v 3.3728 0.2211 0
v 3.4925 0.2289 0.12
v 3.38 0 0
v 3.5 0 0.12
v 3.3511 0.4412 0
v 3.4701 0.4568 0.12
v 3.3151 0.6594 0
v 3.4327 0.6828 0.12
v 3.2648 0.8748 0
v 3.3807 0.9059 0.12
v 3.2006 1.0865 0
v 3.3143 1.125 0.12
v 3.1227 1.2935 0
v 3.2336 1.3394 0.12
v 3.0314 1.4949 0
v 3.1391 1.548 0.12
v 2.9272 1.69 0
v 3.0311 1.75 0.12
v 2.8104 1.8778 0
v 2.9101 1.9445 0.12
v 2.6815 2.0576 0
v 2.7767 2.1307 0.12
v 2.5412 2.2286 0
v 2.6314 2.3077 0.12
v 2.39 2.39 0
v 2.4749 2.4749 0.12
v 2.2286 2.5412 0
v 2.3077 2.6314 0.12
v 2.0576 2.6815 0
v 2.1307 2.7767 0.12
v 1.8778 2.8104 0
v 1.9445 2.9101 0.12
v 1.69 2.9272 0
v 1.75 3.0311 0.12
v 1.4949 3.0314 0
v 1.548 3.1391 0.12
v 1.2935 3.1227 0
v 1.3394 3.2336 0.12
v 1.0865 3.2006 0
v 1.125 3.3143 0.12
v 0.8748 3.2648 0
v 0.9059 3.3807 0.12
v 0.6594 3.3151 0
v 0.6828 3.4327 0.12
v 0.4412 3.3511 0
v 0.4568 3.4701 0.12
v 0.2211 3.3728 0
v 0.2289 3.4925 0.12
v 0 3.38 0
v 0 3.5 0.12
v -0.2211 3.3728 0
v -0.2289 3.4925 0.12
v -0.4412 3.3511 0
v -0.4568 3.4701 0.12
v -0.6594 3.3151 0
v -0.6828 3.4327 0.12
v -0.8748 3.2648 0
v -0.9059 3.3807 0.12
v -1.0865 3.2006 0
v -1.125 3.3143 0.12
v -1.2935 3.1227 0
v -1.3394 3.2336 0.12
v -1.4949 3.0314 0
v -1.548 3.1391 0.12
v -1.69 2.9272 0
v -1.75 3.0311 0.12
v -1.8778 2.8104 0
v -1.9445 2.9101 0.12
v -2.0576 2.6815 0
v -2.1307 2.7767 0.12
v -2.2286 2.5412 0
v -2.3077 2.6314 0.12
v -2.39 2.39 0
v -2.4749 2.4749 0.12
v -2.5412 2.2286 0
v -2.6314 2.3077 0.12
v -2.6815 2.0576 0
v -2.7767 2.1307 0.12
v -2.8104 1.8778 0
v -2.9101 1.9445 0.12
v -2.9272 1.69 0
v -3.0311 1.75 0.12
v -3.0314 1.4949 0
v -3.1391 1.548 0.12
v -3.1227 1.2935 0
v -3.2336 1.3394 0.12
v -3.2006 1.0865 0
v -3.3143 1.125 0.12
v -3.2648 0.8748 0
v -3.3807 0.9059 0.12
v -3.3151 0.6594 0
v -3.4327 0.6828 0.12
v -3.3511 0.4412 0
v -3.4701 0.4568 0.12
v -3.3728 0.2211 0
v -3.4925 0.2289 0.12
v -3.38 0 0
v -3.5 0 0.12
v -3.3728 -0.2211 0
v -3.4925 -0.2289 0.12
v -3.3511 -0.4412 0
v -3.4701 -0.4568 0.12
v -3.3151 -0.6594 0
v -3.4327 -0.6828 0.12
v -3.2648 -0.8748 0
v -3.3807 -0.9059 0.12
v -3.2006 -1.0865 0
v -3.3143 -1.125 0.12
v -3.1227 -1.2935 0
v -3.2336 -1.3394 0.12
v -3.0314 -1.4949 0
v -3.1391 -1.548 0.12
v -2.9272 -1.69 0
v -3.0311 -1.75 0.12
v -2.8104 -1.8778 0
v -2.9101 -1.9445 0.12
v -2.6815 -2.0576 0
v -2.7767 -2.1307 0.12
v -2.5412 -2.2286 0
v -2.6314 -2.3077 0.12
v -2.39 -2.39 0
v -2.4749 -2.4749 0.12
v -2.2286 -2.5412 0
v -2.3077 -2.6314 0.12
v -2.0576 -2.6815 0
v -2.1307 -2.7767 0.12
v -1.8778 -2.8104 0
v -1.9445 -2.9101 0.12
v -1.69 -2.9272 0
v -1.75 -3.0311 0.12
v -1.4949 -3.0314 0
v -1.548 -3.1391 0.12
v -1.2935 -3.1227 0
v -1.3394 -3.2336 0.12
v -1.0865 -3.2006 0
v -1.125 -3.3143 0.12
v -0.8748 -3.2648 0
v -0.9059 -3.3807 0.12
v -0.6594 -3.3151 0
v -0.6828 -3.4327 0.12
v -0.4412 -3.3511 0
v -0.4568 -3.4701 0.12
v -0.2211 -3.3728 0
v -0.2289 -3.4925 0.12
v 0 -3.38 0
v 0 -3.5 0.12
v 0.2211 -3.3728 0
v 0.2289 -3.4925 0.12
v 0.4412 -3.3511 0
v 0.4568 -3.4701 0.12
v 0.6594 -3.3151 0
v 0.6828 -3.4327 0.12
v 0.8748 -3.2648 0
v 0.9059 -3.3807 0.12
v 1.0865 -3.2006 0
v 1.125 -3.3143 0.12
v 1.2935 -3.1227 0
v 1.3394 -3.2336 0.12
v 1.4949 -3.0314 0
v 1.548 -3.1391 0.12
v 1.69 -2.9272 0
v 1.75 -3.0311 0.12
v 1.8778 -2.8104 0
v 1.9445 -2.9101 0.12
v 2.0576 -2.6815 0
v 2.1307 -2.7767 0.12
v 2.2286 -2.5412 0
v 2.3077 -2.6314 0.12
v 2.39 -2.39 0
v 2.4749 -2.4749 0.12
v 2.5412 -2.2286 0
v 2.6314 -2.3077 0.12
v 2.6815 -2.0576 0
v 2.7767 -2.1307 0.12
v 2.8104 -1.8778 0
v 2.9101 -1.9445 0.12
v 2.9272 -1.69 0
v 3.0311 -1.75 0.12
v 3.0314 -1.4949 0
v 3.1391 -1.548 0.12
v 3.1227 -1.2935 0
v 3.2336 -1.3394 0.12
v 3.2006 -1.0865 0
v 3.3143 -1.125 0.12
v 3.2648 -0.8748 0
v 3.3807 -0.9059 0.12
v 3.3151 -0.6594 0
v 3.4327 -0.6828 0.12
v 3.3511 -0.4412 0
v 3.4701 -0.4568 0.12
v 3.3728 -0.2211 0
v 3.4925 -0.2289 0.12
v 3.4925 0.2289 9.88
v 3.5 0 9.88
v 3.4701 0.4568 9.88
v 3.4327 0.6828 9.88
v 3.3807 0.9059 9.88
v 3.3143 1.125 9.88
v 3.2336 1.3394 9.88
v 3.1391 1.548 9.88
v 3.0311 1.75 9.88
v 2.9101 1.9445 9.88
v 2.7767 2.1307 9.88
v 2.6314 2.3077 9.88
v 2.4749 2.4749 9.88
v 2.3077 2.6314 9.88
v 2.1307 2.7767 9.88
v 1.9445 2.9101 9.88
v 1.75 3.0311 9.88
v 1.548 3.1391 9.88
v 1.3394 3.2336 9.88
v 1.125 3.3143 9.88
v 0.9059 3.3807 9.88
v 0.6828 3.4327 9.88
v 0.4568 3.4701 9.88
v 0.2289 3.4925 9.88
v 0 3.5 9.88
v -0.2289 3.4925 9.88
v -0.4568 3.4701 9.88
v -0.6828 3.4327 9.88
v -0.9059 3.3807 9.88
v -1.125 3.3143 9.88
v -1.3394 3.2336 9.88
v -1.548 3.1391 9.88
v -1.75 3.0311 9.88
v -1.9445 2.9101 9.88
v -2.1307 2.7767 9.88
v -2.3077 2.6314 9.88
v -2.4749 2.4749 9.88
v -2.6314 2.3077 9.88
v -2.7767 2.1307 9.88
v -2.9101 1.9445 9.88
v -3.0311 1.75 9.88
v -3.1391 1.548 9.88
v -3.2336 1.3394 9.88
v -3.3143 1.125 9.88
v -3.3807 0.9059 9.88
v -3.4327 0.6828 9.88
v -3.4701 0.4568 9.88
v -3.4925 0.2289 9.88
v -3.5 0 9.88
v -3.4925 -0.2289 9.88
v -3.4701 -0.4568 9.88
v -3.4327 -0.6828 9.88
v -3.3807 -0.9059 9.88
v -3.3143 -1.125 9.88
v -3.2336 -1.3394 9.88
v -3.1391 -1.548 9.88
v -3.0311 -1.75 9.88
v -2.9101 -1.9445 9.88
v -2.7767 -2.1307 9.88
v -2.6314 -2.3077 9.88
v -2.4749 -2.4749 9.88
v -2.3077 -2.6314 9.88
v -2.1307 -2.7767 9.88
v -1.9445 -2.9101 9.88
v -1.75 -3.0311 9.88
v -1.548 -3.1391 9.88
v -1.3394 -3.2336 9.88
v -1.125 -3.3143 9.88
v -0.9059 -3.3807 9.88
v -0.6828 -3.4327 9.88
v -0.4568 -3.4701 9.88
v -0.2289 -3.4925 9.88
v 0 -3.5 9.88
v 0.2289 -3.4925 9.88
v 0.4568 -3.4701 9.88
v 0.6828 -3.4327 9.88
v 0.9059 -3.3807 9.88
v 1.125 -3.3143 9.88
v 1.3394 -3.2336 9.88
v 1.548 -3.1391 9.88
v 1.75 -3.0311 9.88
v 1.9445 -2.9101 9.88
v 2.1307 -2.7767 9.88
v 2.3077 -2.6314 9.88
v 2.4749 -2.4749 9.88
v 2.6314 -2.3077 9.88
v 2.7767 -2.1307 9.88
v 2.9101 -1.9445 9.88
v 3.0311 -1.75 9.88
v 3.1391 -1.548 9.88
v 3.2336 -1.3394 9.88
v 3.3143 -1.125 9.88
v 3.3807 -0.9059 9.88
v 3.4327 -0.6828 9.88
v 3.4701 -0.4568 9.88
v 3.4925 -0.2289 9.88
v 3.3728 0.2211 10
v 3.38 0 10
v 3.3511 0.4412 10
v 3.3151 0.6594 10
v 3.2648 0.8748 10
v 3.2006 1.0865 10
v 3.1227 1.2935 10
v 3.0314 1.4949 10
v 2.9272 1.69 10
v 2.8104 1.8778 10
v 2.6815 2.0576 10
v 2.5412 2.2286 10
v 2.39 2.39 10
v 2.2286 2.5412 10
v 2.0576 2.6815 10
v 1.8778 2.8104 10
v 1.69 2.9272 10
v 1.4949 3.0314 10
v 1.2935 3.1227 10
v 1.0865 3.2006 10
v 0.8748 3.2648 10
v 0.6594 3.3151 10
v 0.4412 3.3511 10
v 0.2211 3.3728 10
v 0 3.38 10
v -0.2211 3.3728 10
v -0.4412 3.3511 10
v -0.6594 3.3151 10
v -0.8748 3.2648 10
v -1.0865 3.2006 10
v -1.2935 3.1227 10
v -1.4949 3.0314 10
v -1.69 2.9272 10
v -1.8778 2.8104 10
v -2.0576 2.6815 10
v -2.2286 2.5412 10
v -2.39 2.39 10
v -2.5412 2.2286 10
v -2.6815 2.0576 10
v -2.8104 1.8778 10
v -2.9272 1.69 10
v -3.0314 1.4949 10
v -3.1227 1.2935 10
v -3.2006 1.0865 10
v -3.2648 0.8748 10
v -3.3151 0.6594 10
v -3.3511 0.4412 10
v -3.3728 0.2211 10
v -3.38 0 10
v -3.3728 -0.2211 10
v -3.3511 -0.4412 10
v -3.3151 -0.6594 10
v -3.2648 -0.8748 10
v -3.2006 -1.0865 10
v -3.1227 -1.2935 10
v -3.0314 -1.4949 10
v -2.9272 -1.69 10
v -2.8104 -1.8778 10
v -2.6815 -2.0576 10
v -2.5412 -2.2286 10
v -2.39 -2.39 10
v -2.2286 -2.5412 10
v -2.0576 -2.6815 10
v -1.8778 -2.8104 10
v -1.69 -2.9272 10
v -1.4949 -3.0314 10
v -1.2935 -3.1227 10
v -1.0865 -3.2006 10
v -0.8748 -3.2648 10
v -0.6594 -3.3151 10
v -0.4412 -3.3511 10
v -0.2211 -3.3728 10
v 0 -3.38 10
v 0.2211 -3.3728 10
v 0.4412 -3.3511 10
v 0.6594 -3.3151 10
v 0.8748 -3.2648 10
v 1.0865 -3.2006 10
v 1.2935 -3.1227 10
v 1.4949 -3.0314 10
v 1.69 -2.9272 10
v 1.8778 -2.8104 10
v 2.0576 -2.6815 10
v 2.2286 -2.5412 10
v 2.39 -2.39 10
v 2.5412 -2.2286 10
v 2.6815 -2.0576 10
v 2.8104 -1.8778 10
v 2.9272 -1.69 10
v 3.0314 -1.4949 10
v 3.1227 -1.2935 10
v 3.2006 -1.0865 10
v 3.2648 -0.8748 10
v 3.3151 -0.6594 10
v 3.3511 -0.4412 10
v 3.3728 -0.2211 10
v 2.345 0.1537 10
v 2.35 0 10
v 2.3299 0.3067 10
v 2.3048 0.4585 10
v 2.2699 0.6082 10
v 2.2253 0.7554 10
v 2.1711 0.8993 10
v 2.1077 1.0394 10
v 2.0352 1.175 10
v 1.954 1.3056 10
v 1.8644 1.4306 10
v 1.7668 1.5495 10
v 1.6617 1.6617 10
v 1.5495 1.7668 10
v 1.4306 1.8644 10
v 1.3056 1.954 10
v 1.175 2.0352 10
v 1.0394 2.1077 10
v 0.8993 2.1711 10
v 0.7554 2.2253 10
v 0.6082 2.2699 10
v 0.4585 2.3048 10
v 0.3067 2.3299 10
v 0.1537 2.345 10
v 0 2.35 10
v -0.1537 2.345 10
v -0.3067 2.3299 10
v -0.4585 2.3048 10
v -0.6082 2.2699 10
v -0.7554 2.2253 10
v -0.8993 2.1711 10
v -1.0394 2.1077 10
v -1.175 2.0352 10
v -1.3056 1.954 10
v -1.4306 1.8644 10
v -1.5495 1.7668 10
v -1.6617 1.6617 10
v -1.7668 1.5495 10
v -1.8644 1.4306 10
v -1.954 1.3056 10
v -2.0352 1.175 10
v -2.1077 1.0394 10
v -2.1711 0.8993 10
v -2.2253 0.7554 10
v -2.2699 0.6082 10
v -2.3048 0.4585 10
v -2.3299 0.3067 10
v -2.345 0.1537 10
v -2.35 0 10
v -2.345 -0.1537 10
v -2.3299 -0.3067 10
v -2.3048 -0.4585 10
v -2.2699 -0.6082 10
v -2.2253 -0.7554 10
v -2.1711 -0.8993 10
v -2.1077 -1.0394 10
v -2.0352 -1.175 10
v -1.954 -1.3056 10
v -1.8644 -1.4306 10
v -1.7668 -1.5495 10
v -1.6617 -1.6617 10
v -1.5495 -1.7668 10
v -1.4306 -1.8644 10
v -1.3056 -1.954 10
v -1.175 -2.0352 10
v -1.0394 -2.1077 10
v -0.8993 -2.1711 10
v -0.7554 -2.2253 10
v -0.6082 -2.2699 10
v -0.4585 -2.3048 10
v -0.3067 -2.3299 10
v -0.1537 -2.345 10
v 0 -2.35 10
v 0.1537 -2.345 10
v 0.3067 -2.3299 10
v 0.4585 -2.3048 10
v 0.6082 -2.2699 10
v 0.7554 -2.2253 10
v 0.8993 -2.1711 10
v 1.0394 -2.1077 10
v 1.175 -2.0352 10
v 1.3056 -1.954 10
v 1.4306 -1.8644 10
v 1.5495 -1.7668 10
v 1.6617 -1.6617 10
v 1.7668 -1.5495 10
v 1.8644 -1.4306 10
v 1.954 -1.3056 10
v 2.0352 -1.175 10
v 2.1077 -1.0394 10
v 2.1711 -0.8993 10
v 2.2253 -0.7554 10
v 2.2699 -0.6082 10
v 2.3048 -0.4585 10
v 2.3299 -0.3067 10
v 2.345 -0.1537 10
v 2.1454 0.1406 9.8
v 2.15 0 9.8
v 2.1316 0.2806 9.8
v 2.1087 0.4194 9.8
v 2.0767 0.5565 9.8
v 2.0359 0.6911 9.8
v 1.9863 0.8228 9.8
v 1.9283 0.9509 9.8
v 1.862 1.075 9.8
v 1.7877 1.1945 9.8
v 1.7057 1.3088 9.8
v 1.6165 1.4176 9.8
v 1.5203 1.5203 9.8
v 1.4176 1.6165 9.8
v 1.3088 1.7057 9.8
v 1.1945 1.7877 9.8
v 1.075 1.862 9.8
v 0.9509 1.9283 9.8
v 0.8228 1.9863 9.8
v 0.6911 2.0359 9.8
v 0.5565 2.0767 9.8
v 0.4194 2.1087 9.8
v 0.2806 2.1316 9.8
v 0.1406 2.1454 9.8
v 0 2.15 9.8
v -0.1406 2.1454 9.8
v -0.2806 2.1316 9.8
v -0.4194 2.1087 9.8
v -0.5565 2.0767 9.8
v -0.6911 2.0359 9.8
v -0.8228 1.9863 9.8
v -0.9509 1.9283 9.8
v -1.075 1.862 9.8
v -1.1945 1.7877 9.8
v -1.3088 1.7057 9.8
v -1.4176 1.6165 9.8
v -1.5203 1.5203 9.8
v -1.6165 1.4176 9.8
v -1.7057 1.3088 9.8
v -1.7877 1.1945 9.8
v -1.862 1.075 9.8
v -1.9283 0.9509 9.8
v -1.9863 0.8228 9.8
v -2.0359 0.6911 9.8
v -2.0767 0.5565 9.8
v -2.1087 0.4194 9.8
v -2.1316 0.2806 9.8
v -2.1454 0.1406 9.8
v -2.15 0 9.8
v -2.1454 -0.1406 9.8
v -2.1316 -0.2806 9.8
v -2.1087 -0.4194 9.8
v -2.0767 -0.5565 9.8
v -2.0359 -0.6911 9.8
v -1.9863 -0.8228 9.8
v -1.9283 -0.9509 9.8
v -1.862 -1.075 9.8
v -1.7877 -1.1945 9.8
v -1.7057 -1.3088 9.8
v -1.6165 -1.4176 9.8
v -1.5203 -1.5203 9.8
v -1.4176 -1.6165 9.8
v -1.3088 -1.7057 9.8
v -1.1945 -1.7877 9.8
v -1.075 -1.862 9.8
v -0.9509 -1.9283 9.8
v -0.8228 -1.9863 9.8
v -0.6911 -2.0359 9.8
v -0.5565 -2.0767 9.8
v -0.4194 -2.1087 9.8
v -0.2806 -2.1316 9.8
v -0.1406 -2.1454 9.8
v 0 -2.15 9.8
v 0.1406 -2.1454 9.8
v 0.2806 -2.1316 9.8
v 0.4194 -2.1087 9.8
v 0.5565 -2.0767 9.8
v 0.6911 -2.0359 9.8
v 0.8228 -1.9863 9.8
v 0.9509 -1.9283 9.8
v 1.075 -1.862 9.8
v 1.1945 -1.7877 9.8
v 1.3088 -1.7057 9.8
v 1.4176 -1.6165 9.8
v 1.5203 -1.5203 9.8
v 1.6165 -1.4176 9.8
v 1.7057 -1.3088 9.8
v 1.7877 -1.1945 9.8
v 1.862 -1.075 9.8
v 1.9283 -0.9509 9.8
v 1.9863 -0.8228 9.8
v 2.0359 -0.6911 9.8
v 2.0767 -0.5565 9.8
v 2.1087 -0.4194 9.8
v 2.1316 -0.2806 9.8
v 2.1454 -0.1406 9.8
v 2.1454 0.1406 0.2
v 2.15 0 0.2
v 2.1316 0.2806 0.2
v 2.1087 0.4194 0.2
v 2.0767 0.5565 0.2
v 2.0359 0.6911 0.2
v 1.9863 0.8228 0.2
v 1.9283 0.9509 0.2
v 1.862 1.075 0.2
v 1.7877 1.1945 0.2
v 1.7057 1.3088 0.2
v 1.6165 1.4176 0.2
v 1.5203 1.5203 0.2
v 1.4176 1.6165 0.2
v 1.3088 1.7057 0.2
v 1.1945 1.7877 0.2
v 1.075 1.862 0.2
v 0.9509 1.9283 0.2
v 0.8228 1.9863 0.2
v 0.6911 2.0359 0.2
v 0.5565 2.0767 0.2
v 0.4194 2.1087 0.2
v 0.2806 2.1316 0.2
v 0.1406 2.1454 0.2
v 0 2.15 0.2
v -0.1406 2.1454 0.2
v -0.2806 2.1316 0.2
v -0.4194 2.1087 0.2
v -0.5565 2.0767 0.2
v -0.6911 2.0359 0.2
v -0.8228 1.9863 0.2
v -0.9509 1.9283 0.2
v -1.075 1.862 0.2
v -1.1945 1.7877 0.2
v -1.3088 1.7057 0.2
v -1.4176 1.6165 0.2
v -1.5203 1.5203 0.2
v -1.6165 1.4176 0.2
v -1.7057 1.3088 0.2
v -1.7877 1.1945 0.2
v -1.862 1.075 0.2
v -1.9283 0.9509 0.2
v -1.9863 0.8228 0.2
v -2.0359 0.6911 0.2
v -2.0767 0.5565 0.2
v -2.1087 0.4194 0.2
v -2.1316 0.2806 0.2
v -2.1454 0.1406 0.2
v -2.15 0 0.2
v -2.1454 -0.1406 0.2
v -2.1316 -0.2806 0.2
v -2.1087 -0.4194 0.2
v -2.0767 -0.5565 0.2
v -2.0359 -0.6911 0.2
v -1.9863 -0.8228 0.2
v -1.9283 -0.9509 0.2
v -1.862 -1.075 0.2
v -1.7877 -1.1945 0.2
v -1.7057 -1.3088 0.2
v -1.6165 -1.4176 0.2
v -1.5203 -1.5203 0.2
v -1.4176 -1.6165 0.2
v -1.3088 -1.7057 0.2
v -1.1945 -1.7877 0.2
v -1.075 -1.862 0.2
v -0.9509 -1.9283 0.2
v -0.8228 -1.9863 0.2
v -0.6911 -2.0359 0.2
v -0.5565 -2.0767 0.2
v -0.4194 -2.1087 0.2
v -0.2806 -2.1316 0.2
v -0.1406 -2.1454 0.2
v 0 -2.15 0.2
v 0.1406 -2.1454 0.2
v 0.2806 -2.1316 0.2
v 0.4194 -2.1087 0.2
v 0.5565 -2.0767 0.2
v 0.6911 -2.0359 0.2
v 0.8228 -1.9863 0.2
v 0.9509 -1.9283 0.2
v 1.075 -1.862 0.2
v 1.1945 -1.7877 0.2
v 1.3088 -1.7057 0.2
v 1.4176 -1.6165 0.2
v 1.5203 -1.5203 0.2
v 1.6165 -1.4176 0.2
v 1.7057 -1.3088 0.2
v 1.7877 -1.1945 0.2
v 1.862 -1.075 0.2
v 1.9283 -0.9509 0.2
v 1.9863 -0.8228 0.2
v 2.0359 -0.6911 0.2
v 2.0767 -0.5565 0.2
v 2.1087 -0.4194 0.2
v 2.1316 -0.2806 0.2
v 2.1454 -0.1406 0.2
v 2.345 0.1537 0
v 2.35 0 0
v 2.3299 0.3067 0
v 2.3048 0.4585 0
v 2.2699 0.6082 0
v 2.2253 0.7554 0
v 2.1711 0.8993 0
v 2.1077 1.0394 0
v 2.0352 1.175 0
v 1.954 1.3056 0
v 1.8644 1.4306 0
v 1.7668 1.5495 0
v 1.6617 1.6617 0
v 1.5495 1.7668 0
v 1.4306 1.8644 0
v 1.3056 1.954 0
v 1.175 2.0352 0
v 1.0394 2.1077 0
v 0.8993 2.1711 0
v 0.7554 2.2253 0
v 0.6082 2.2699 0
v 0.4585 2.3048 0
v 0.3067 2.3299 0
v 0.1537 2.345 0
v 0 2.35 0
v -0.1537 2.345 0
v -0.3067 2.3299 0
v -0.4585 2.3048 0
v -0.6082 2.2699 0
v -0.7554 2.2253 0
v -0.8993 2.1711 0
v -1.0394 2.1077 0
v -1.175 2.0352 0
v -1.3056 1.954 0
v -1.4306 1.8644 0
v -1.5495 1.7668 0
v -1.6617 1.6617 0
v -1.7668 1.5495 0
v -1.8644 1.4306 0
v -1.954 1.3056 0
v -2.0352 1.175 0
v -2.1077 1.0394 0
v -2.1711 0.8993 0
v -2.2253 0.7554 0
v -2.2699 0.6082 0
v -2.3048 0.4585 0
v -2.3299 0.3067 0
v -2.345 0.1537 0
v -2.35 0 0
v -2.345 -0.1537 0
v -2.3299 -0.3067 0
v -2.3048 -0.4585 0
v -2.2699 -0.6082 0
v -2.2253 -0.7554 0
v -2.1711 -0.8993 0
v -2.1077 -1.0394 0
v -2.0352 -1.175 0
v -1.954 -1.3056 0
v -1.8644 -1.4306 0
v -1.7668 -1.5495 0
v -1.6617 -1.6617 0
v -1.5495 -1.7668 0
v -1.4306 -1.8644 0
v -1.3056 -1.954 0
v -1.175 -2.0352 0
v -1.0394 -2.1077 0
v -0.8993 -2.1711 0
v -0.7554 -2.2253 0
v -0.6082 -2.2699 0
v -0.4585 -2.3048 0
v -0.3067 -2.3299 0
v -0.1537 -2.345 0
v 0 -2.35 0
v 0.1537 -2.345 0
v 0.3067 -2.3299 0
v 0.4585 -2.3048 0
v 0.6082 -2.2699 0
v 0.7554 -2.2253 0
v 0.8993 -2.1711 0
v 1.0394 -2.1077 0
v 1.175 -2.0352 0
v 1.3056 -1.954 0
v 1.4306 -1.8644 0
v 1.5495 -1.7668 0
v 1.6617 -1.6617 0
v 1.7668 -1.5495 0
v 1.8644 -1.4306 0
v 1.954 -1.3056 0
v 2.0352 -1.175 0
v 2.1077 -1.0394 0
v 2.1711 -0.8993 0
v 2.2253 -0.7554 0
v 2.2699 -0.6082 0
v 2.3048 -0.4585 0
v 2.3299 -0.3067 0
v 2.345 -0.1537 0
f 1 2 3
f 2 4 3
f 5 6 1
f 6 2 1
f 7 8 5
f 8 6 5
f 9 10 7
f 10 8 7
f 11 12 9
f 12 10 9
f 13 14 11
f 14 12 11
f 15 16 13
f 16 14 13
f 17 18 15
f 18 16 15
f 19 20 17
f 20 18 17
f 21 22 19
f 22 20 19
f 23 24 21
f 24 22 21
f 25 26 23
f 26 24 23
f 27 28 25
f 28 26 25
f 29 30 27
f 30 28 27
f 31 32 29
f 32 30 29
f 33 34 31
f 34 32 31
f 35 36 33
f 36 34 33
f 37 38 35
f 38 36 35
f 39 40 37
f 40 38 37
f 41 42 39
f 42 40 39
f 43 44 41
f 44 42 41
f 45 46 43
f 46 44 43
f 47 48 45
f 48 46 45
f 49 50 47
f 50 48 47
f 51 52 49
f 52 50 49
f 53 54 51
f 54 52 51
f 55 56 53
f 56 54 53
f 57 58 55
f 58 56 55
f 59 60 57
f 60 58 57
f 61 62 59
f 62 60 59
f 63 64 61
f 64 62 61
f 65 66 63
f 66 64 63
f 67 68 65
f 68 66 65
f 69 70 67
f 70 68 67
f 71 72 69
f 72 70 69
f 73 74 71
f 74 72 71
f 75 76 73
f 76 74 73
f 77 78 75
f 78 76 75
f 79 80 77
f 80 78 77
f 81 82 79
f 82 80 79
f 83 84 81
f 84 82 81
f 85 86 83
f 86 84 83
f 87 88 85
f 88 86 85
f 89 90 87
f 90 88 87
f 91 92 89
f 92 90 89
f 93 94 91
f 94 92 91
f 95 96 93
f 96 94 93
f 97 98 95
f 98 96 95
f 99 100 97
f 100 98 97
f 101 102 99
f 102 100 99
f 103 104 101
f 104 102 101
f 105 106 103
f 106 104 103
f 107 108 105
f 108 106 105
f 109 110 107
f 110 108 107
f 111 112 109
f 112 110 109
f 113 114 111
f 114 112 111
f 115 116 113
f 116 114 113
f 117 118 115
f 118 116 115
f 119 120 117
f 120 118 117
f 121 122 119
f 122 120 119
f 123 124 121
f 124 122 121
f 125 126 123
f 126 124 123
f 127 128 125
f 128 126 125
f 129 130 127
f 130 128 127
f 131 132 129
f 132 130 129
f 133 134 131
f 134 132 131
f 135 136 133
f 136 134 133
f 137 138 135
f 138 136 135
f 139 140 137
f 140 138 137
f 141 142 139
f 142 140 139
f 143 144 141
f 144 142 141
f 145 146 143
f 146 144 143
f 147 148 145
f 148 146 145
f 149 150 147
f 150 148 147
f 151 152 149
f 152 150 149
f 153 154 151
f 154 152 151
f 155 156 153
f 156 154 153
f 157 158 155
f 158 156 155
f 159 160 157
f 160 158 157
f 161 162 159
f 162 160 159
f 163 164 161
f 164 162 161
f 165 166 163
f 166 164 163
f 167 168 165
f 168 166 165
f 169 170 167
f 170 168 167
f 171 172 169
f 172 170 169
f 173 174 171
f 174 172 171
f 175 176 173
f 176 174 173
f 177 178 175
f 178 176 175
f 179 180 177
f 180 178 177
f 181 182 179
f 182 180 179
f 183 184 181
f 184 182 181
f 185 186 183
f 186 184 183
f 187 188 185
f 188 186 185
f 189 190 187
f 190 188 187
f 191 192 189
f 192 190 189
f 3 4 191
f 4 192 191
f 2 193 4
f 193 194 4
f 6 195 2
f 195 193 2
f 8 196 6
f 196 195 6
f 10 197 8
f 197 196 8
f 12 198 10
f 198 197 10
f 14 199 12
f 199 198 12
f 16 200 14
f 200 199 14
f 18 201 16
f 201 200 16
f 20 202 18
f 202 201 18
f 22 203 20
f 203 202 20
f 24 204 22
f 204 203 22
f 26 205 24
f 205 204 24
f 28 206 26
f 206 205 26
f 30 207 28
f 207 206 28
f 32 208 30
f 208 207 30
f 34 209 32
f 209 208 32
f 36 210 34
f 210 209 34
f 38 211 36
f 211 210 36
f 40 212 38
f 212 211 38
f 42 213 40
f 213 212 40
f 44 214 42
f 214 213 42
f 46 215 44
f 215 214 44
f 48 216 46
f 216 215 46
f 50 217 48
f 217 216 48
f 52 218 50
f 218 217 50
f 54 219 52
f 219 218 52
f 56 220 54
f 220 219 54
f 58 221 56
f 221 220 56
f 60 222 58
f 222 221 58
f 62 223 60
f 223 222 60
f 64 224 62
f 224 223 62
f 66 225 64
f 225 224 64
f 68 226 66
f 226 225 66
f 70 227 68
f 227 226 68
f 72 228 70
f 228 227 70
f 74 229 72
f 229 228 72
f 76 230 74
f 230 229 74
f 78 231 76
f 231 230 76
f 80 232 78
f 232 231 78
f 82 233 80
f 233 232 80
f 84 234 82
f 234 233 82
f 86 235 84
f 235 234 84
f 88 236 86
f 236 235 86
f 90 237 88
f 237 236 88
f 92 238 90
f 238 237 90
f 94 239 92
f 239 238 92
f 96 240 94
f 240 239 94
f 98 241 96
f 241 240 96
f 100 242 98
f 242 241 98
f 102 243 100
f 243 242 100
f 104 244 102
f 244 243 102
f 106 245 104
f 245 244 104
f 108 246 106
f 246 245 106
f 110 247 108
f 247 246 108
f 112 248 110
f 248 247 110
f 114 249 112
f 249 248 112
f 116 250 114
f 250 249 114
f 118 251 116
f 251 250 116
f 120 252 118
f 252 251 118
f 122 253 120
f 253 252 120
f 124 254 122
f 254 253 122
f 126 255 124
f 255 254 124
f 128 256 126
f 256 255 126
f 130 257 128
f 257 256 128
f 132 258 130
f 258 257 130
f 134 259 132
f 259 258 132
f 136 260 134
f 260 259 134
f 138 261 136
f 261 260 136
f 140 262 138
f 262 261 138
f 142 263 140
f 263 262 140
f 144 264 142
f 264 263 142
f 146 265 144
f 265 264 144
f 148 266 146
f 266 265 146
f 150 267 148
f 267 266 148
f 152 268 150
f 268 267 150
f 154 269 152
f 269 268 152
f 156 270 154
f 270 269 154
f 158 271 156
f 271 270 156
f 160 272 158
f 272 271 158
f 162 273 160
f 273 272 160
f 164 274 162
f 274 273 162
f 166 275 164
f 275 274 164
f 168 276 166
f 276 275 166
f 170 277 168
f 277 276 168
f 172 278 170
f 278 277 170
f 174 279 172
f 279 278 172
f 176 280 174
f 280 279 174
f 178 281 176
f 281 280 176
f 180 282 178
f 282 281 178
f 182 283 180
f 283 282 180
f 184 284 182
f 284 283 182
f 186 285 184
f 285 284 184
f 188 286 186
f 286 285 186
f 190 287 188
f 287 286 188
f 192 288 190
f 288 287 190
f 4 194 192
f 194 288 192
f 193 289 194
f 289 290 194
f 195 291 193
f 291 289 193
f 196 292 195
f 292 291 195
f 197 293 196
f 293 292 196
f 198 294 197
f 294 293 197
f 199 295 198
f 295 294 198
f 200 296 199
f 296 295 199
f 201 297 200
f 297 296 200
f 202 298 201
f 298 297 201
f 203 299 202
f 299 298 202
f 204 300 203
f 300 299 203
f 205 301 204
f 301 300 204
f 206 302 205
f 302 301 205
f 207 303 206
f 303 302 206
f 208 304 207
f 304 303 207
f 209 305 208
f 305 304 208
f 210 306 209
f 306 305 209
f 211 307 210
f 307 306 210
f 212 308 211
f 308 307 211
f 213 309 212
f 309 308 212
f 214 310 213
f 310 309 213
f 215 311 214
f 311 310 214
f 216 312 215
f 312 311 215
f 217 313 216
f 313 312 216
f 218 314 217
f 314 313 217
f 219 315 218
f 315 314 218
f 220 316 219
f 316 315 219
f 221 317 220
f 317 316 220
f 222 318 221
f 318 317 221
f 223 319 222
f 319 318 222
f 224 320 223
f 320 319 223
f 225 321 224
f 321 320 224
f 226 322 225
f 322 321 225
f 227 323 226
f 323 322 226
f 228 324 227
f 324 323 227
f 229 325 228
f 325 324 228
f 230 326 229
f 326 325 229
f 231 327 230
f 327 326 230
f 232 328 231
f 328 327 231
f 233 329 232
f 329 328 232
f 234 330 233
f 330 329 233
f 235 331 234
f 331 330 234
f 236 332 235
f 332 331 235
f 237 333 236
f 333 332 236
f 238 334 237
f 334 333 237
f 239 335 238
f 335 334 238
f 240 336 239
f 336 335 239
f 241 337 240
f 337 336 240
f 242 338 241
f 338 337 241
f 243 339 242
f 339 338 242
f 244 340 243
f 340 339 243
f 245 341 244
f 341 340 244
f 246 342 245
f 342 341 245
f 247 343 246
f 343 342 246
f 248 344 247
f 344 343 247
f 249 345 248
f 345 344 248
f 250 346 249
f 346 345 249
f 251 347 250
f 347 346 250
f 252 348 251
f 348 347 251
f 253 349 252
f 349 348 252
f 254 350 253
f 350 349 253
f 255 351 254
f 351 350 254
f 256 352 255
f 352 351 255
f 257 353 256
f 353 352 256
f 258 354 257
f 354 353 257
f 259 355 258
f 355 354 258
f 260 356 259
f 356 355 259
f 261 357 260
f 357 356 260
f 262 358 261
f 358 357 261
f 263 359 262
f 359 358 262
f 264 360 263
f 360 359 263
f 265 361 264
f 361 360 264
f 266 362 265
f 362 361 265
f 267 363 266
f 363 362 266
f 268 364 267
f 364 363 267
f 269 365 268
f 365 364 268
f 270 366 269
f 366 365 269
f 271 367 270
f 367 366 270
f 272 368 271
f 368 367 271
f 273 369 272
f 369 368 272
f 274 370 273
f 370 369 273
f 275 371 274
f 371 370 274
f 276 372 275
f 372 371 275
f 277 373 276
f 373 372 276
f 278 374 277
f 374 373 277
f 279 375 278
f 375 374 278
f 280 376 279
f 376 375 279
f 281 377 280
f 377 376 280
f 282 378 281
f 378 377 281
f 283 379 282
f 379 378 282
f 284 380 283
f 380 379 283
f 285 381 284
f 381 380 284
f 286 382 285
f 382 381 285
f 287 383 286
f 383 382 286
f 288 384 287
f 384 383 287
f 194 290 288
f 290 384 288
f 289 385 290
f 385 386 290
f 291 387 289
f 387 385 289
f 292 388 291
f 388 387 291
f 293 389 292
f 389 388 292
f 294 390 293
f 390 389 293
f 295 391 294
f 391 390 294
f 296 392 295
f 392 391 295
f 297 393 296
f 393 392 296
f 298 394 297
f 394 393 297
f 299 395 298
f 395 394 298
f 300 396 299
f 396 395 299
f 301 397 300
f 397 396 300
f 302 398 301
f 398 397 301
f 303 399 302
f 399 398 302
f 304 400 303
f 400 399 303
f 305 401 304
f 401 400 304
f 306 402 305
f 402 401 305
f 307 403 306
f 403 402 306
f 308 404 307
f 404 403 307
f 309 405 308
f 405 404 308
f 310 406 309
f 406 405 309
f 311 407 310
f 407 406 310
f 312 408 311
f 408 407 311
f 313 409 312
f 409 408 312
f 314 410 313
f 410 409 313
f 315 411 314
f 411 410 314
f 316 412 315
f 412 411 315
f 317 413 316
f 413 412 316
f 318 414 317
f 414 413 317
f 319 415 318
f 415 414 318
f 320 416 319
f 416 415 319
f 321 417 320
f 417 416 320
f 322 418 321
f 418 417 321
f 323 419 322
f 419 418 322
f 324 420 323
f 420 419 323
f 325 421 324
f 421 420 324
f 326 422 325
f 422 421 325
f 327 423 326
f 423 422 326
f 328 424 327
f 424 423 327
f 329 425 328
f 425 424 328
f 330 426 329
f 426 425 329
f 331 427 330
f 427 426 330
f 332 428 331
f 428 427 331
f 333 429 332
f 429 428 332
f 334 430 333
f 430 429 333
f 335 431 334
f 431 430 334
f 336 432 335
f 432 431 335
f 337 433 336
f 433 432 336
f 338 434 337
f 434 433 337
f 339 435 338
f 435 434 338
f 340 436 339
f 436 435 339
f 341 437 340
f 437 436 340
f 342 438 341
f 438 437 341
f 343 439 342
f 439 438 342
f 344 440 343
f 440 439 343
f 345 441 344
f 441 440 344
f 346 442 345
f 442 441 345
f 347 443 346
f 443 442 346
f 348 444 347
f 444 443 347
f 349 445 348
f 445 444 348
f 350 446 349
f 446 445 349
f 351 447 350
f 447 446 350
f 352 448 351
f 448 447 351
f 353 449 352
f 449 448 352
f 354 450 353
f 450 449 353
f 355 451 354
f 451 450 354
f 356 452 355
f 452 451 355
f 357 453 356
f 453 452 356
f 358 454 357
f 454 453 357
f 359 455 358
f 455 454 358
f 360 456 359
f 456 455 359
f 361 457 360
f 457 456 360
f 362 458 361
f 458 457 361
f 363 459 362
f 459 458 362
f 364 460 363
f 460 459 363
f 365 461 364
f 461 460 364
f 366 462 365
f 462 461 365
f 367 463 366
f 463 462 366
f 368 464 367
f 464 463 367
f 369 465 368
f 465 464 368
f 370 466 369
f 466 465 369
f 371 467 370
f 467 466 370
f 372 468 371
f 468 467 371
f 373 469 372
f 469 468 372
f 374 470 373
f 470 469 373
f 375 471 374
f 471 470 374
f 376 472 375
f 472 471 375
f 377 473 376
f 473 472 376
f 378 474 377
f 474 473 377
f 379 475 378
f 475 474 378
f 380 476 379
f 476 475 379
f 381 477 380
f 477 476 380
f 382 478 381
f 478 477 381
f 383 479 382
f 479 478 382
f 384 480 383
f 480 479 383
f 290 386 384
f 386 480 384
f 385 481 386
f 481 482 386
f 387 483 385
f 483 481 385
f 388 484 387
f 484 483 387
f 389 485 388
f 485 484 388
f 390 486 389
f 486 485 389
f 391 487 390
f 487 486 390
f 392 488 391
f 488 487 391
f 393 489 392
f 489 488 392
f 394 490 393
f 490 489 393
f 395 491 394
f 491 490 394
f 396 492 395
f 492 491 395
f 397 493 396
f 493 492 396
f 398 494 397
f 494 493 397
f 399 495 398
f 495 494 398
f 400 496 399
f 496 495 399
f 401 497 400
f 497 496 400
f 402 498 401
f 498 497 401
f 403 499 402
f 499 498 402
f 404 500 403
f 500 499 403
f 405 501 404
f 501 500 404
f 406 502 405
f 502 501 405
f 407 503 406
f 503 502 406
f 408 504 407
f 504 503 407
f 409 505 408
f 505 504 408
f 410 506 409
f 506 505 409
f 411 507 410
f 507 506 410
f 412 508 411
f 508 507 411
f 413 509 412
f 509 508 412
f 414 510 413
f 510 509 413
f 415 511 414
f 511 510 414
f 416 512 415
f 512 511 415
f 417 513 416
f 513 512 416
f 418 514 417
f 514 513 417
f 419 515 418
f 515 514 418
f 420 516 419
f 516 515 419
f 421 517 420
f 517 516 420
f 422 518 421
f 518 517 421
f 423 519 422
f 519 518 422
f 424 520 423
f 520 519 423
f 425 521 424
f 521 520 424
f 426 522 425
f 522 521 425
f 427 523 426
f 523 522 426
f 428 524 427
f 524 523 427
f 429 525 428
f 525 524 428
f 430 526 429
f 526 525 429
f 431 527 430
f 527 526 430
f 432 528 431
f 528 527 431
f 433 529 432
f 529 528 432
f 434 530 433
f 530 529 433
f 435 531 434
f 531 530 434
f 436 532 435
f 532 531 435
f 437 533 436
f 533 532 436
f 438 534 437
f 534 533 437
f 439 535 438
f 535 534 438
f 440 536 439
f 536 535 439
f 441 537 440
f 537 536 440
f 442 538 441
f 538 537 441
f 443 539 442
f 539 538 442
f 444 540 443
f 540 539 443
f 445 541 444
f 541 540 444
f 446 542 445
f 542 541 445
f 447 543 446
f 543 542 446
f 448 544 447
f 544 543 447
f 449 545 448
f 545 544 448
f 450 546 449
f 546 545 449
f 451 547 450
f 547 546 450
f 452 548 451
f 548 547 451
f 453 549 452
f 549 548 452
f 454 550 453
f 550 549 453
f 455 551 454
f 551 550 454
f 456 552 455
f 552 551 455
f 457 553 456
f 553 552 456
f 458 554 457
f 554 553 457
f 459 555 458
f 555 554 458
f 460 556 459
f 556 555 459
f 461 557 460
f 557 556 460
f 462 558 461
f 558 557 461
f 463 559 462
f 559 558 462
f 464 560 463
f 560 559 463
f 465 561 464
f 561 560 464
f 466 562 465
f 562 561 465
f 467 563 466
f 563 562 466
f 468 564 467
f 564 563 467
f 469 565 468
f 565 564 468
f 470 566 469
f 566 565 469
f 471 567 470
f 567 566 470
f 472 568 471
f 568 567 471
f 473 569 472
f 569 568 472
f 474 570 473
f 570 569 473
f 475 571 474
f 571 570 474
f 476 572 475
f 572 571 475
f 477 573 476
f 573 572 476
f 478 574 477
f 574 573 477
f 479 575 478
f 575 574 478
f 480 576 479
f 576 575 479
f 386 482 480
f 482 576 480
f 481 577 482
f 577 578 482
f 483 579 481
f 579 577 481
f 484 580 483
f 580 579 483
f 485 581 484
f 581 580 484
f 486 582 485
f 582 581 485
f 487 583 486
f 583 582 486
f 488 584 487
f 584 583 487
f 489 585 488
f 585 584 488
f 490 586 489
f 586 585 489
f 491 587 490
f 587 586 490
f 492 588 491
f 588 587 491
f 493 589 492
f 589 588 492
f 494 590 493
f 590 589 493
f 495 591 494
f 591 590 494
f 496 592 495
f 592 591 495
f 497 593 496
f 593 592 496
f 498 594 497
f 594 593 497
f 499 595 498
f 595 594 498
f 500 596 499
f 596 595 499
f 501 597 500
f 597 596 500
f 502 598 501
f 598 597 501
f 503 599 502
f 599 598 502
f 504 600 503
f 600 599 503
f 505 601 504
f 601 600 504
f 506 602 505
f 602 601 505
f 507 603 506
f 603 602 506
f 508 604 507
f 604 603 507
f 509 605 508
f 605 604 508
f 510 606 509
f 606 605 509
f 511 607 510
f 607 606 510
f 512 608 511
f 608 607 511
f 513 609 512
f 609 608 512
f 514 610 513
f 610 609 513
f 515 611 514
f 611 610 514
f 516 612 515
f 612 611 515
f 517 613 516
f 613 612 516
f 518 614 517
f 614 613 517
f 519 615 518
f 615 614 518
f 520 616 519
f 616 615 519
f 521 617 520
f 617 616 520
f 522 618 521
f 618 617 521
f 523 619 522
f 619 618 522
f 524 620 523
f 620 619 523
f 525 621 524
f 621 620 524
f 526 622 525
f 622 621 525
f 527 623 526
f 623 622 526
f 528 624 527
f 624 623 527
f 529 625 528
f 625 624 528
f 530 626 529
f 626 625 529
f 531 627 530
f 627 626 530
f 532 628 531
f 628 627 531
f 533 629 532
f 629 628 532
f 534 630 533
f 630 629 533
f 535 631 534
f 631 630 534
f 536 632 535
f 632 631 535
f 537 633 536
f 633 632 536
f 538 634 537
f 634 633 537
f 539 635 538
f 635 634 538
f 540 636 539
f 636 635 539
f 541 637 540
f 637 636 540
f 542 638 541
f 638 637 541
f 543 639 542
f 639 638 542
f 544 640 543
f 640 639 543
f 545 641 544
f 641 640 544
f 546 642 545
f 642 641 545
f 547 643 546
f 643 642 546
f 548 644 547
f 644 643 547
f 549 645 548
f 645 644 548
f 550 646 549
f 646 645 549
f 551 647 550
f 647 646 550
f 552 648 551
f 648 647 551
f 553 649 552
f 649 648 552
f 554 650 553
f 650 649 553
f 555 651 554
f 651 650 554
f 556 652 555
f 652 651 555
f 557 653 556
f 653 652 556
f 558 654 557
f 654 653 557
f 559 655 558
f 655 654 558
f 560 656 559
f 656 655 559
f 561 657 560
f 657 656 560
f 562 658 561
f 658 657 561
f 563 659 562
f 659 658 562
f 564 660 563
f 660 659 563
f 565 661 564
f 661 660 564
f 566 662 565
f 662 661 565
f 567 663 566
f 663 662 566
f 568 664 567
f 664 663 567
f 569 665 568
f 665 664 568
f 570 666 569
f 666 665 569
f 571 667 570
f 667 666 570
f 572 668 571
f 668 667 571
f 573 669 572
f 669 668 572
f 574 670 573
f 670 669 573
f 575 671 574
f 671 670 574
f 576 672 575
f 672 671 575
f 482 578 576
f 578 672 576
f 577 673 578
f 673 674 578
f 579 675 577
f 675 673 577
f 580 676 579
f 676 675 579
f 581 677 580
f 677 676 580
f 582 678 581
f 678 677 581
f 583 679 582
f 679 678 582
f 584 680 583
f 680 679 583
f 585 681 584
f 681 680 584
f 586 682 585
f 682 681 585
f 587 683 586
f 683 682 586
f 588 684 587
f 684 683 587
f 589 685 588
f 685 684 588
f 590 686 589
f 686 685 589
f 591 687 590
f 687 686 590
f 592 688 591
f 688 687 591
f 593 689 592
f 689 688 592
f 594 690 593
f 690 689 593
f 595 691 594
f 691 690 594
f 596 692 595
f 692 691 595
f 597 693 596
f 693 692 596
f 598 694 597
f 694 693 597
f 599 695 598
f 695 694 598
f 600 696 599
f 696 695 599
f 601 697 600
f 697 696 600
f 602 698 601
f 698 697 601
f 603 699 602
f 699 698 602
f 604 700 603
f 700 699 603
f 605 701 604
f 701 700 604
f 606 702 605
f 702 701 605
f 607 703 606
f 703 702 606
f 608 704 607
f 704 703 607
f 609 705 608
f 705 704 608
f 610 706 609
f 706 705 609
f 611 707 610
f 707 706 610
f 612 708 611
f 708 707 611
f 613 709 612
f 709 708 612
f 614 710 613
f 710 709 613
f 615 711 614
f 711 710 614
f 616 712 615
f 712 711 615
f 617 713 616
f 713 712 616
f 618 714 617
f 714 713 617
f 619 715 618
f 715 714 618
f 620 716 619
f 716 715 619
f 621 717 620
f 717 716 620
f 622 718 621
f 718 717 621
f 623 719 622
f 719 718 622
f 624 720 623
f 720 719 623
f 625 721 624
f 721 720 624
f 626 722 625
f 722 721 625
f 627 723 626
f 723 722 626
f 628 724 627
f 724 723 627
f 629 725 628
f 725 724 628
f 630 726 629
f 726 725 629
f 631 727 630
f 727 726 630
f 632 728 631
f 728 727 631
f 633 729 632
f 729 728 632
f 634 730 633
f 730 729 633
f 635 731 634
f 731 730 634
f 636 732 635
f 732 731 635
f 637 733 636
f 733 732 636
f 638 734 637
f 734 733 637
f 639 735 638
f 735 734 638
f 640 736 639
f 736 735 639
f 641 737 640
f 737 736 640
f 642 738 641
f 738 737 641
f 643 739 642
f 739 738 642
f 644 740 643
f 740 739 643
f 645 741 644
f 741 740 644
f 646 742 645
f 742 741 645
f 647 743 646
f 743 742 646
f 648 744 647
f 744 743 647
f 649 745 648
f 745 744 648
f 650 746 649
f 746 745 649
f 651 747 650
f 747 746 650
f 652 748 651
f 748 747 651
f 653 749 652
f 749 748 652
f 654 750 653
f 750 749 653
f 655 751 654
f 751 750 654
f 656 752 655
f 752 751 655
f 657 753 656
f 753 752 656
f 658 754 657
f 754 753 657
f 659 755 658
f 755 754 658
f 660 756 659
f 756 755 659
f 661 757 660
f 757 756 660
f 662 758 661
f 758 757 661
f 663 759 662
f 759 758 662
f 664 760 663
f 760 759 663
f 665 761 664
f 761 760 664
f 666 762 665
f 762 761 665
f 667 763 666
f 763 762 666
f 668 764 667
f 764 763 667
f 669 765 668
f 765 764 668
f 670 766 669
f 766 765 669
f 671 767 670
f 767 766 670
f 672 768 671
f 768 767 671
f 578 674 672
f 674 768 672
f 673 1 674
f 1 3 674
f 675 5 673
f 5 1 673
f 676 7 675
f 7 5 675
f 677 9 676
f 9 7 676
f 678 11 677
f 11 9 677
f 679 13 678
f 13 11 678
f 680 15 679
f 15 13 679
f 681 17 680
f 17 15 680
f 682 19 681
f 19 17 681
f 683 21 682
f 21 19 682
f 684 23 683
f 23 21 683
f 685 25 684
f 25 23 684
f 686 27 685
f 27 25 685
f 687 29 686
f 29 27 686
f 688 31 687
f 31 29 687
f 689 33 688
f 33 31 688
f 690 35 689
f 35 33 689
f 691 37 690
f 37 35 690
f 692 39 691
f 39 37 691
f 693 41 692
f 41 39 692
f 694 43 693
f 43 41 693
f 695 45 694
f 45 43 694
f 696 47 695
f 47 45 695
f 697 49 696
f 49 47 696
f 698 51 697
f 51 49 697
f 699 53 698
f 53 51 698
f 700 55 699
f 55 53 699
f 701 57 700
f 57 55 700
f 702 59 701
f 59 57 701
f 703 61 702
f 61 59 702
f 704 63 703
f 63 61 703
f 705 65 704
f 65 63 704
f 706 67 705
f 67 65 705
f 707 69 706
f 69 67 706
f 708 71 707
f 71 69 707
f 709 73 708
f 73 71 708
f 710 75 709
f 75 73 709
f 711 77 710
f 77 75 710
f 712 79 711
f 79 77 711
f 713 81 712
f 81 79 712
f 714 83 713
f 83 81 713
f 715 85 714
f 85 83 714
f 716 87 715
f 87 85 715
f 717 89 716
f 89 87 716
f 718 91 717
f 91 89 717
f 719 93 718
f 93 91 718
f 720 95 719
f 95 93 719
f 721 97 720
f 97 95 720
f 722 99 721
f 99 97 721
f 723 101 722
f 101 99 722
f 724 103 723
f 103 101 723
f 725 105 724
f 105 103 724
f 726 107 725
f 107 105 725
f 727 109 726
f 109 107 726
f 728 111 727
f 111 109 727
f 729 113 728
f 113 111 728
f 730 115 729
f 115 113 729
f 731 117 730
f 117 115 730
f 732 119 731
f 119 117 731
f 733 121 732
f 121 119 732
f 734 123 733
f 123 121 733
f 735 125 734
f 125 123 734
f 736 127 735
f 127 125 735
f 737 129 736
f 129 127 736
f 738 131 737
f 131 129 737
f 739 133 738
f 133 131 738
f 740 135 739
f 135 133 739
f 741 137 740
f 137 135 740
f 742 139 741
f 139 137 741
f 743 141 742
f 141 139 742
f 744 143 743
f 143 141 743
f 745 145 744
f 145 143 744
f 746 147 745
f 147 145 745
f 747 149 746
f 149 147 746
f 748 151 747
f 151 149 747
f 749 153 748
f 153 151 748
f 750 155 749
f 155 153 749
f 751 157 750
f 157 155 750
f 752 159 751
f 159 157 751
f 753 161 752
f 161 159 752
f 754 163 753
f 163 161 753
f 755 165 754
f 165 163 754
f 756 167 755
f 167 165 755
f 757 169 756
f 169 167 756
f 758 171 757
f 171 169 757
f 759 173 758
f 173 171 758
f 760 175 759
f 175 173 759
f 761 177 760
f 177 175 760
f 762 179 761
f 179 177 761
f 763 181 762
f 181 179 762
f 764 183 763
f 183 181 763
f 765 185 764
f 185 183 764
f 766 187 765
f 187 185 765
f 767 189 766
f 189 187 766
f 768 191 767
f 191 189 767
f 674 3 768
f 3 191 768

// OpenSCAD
// OOMP generic catalogue model; units: mm.
// Stud length is additional to body depth. Tapping depths are model assumptions.
variant = "full"; // [full, display]
family = "spacer";
connection_type = "plain";
depth_mm = 10;
stud_length_mm = 0;
tapped_depth_mm = 0;
bore_mm = 4.3;
outer_diameter_mm = 7;
across_flats_mm = 6;
thread_nominal_diameter_mm = 3;
thread_pitch_mm = 0.5;
edge_chamfer_mm = 0.12;
mouth_chamfer_mm = 0.2;
angular_segments = 96;
samples_per_pitch = 16;

// Boundary travels up the outside, then down any tapped/plain bore.
// Equal-height rings at shoulders form the annular shoulder faces.
n = angular_segments;
threaded = family == "standoff";
has_stud = connection_type == "stud_to_tapped" || connection_type == "stud_to_stud";
two_studs = connection_type == "stud_to_stud";
through = !threaded || connection_type == "tapped_to_tapped";
pitch = thread_pitch_mm;
diameter = threaded ? thread_nominal_diameter_mm : bore_mm;
minor = diameter - 5*sqrt(3)*pitch/8;
transition = mouth_chamfer_mm + (threaded ? 5*sqrt(3)*pitch/16 : 0);
tip_chamfer = mouth_chamfer_mm + 17*sqrt(3)*pitch/48;
function sorted(v) = len(v)<=1 ? v : let(p=v[0])
    concat(sorted([for(x=v) if(x<p-1e-8) x]), [p], sorted([for(x=v) if(x>p+1e-8) x]));
function reverse(v) = [for(i=[len(v)-1:-1:0]) v[i]];
function theta(i) = i*360/n;
function fract(x) = x-floor(x);
function phase_distance(i,z) = abs(fract(z/pitch-theta(i)/360+0.5)-0.5);
function thread_r(i,z) = minor/2 + min(5*sqrt(3)*pitch/16,
    max(0,(phase_distance(i,z)-0.125)*pitch*sqrt(3)));
function stud_r(i,z,tip) = min(diameter/2 - (variant=="full" ?
    min(17*sqrt(3)*pitch/48,max(0,(phase_distance(i,z)-0.0625)*pitch*sqrt(3))) : 0),
    diameter/2-tip_chamfer+abs(z-tip));
function body_r(i,z) = (threaded ? across_flats_mm/2/cos(theta(i)%60-30) : outer_diameter_mm/2)
    - max(0,edge_chamfer_mm-min(z,depth_mm-z));
function bore_r(i,z) = max(threaded ? (variant=="full" ? thread_r(i,z) : minor/2) : diameter/2,
    diameter/2+mouth_chamfer_mm-(through ? min(z,depth_mm-z) : depth_mm-z));
function stud_z(a,b,tip) = let(count=variant=="full" ? ceil(stud_length_mm/pitch*samples_per_pitch) : 1)
    sorted(concat([for(i=[0:count]) a+(b-a)*i/count], [tip==a ? tip+tip_chamfer : tip-tip_chamfer]));
body_z = sorted([0,edge_chamfer_mm,depth_mm-edge_chamfer_mm,depth_mm]);
low = through ? 0 : depth_mm-tapped_depth_mm;
count = threaded && variant=="full" ? ceil((depth_mm-low)/pitch*samples_per_pitch) : 1;
bore_z = two_studs ? [] : reverse(sorted(concat(
    [for(i=[0:count]) low+(depth_mm-low)*i/count],
    [depth_mm-mouth_chamfer_mm,depth_mm-transition],
    through ? [mouth_chamfer_mm,transition] : [])));
// Ring descriptors: [height, kind, tip]. Kind: 0 body, 1 stud, 2 bore.
rings = concat(
    has_stud ? [for(z=stud_z(-stud_length_mm,0,-stud_length_mm)) [z,1,-stud_length_mm]] : [],
    [for(z=body_z) [z,0,0]],
    two_studs ? [for(z=stud_z(depth_mm,depth_mm+stud_length_mm,depth_mm+stud_length_mm)) [z,1,depth_mm+stud_length_mm]] : [],
    [for(z=bore_z) [z,2,0]]);
function radius(i,ring) = ring[1]==0 ? body_r(i,ring[0]) :
    ring[1]==1 ? stud_r(i,ring[0],ring[2]) : bore_r(i,ring[0]);
points = concat([for(ring=rings) for(i=[0:n-1])
    [radius(i,ring)*cos(theta(i)),radius(i,ring)*sin(theta(i)),ring[0]]],
    through ? [] : [[0,0,rings[0][0]],[0,0,rings[len(rings)-1][0]]]);
center = len(rings)*n;
last = (len(rings)-1)*n;
// OpenSCAD winding is opposite to STL winding.
faces = concat(
    [for(j=[0:len(rings)-(through ? 1 : 2)]) for(i=[0:n-1]) each
        let(a=j*n+i,b=j*n+(i+1)%n,c=((j+1)%len(rings))*n+(i+1)%n,d=((j+1)%len(rings))*n+i)
        [[a,c,b],[a,d,c]]],
    through ? [] : [for(i=[0:n-1]) each let(k=(i+1)%n)
        [[center,i,k],[center+1,last+k,last+i]]]);
assert(family=="spacer" || family=="standoff");
assert(!threaded || connection_type=="tapped_to_tapped" || has_stud);
assert(depth_mm>0 && diameter>0 && pitch>0);
assert(variant=="full" || variant=="display");
assert(n>=24 && n%12==0 && samples_per_pitch>=8);
assert(mouth_chamfer_mm>0 && mouth_chamfer_mm<depth_mm/2);
assert(edge_chamfer_mm>=0 && edge_chamfer_mm<depth_mm/2);
assert(diameter+4*max(mouth_chamfer_mm,edge_chamfer_mm) < (threaded ? across_flats_mm : outer_diameter_mm));
assert(!has_stud || stud_length_mm>2*mouth_chamfer_mm);
assert(!through || !threaded || 2*transition<depth_mm);
assert(connection_type!="stud_to_tapped" || (tapped_depth_mm>transition && tapped_depth_mm<depth_mm));
color([0.86,0.85,0.81]) polyhedron(points=points,faces=faces,convexity=20);
